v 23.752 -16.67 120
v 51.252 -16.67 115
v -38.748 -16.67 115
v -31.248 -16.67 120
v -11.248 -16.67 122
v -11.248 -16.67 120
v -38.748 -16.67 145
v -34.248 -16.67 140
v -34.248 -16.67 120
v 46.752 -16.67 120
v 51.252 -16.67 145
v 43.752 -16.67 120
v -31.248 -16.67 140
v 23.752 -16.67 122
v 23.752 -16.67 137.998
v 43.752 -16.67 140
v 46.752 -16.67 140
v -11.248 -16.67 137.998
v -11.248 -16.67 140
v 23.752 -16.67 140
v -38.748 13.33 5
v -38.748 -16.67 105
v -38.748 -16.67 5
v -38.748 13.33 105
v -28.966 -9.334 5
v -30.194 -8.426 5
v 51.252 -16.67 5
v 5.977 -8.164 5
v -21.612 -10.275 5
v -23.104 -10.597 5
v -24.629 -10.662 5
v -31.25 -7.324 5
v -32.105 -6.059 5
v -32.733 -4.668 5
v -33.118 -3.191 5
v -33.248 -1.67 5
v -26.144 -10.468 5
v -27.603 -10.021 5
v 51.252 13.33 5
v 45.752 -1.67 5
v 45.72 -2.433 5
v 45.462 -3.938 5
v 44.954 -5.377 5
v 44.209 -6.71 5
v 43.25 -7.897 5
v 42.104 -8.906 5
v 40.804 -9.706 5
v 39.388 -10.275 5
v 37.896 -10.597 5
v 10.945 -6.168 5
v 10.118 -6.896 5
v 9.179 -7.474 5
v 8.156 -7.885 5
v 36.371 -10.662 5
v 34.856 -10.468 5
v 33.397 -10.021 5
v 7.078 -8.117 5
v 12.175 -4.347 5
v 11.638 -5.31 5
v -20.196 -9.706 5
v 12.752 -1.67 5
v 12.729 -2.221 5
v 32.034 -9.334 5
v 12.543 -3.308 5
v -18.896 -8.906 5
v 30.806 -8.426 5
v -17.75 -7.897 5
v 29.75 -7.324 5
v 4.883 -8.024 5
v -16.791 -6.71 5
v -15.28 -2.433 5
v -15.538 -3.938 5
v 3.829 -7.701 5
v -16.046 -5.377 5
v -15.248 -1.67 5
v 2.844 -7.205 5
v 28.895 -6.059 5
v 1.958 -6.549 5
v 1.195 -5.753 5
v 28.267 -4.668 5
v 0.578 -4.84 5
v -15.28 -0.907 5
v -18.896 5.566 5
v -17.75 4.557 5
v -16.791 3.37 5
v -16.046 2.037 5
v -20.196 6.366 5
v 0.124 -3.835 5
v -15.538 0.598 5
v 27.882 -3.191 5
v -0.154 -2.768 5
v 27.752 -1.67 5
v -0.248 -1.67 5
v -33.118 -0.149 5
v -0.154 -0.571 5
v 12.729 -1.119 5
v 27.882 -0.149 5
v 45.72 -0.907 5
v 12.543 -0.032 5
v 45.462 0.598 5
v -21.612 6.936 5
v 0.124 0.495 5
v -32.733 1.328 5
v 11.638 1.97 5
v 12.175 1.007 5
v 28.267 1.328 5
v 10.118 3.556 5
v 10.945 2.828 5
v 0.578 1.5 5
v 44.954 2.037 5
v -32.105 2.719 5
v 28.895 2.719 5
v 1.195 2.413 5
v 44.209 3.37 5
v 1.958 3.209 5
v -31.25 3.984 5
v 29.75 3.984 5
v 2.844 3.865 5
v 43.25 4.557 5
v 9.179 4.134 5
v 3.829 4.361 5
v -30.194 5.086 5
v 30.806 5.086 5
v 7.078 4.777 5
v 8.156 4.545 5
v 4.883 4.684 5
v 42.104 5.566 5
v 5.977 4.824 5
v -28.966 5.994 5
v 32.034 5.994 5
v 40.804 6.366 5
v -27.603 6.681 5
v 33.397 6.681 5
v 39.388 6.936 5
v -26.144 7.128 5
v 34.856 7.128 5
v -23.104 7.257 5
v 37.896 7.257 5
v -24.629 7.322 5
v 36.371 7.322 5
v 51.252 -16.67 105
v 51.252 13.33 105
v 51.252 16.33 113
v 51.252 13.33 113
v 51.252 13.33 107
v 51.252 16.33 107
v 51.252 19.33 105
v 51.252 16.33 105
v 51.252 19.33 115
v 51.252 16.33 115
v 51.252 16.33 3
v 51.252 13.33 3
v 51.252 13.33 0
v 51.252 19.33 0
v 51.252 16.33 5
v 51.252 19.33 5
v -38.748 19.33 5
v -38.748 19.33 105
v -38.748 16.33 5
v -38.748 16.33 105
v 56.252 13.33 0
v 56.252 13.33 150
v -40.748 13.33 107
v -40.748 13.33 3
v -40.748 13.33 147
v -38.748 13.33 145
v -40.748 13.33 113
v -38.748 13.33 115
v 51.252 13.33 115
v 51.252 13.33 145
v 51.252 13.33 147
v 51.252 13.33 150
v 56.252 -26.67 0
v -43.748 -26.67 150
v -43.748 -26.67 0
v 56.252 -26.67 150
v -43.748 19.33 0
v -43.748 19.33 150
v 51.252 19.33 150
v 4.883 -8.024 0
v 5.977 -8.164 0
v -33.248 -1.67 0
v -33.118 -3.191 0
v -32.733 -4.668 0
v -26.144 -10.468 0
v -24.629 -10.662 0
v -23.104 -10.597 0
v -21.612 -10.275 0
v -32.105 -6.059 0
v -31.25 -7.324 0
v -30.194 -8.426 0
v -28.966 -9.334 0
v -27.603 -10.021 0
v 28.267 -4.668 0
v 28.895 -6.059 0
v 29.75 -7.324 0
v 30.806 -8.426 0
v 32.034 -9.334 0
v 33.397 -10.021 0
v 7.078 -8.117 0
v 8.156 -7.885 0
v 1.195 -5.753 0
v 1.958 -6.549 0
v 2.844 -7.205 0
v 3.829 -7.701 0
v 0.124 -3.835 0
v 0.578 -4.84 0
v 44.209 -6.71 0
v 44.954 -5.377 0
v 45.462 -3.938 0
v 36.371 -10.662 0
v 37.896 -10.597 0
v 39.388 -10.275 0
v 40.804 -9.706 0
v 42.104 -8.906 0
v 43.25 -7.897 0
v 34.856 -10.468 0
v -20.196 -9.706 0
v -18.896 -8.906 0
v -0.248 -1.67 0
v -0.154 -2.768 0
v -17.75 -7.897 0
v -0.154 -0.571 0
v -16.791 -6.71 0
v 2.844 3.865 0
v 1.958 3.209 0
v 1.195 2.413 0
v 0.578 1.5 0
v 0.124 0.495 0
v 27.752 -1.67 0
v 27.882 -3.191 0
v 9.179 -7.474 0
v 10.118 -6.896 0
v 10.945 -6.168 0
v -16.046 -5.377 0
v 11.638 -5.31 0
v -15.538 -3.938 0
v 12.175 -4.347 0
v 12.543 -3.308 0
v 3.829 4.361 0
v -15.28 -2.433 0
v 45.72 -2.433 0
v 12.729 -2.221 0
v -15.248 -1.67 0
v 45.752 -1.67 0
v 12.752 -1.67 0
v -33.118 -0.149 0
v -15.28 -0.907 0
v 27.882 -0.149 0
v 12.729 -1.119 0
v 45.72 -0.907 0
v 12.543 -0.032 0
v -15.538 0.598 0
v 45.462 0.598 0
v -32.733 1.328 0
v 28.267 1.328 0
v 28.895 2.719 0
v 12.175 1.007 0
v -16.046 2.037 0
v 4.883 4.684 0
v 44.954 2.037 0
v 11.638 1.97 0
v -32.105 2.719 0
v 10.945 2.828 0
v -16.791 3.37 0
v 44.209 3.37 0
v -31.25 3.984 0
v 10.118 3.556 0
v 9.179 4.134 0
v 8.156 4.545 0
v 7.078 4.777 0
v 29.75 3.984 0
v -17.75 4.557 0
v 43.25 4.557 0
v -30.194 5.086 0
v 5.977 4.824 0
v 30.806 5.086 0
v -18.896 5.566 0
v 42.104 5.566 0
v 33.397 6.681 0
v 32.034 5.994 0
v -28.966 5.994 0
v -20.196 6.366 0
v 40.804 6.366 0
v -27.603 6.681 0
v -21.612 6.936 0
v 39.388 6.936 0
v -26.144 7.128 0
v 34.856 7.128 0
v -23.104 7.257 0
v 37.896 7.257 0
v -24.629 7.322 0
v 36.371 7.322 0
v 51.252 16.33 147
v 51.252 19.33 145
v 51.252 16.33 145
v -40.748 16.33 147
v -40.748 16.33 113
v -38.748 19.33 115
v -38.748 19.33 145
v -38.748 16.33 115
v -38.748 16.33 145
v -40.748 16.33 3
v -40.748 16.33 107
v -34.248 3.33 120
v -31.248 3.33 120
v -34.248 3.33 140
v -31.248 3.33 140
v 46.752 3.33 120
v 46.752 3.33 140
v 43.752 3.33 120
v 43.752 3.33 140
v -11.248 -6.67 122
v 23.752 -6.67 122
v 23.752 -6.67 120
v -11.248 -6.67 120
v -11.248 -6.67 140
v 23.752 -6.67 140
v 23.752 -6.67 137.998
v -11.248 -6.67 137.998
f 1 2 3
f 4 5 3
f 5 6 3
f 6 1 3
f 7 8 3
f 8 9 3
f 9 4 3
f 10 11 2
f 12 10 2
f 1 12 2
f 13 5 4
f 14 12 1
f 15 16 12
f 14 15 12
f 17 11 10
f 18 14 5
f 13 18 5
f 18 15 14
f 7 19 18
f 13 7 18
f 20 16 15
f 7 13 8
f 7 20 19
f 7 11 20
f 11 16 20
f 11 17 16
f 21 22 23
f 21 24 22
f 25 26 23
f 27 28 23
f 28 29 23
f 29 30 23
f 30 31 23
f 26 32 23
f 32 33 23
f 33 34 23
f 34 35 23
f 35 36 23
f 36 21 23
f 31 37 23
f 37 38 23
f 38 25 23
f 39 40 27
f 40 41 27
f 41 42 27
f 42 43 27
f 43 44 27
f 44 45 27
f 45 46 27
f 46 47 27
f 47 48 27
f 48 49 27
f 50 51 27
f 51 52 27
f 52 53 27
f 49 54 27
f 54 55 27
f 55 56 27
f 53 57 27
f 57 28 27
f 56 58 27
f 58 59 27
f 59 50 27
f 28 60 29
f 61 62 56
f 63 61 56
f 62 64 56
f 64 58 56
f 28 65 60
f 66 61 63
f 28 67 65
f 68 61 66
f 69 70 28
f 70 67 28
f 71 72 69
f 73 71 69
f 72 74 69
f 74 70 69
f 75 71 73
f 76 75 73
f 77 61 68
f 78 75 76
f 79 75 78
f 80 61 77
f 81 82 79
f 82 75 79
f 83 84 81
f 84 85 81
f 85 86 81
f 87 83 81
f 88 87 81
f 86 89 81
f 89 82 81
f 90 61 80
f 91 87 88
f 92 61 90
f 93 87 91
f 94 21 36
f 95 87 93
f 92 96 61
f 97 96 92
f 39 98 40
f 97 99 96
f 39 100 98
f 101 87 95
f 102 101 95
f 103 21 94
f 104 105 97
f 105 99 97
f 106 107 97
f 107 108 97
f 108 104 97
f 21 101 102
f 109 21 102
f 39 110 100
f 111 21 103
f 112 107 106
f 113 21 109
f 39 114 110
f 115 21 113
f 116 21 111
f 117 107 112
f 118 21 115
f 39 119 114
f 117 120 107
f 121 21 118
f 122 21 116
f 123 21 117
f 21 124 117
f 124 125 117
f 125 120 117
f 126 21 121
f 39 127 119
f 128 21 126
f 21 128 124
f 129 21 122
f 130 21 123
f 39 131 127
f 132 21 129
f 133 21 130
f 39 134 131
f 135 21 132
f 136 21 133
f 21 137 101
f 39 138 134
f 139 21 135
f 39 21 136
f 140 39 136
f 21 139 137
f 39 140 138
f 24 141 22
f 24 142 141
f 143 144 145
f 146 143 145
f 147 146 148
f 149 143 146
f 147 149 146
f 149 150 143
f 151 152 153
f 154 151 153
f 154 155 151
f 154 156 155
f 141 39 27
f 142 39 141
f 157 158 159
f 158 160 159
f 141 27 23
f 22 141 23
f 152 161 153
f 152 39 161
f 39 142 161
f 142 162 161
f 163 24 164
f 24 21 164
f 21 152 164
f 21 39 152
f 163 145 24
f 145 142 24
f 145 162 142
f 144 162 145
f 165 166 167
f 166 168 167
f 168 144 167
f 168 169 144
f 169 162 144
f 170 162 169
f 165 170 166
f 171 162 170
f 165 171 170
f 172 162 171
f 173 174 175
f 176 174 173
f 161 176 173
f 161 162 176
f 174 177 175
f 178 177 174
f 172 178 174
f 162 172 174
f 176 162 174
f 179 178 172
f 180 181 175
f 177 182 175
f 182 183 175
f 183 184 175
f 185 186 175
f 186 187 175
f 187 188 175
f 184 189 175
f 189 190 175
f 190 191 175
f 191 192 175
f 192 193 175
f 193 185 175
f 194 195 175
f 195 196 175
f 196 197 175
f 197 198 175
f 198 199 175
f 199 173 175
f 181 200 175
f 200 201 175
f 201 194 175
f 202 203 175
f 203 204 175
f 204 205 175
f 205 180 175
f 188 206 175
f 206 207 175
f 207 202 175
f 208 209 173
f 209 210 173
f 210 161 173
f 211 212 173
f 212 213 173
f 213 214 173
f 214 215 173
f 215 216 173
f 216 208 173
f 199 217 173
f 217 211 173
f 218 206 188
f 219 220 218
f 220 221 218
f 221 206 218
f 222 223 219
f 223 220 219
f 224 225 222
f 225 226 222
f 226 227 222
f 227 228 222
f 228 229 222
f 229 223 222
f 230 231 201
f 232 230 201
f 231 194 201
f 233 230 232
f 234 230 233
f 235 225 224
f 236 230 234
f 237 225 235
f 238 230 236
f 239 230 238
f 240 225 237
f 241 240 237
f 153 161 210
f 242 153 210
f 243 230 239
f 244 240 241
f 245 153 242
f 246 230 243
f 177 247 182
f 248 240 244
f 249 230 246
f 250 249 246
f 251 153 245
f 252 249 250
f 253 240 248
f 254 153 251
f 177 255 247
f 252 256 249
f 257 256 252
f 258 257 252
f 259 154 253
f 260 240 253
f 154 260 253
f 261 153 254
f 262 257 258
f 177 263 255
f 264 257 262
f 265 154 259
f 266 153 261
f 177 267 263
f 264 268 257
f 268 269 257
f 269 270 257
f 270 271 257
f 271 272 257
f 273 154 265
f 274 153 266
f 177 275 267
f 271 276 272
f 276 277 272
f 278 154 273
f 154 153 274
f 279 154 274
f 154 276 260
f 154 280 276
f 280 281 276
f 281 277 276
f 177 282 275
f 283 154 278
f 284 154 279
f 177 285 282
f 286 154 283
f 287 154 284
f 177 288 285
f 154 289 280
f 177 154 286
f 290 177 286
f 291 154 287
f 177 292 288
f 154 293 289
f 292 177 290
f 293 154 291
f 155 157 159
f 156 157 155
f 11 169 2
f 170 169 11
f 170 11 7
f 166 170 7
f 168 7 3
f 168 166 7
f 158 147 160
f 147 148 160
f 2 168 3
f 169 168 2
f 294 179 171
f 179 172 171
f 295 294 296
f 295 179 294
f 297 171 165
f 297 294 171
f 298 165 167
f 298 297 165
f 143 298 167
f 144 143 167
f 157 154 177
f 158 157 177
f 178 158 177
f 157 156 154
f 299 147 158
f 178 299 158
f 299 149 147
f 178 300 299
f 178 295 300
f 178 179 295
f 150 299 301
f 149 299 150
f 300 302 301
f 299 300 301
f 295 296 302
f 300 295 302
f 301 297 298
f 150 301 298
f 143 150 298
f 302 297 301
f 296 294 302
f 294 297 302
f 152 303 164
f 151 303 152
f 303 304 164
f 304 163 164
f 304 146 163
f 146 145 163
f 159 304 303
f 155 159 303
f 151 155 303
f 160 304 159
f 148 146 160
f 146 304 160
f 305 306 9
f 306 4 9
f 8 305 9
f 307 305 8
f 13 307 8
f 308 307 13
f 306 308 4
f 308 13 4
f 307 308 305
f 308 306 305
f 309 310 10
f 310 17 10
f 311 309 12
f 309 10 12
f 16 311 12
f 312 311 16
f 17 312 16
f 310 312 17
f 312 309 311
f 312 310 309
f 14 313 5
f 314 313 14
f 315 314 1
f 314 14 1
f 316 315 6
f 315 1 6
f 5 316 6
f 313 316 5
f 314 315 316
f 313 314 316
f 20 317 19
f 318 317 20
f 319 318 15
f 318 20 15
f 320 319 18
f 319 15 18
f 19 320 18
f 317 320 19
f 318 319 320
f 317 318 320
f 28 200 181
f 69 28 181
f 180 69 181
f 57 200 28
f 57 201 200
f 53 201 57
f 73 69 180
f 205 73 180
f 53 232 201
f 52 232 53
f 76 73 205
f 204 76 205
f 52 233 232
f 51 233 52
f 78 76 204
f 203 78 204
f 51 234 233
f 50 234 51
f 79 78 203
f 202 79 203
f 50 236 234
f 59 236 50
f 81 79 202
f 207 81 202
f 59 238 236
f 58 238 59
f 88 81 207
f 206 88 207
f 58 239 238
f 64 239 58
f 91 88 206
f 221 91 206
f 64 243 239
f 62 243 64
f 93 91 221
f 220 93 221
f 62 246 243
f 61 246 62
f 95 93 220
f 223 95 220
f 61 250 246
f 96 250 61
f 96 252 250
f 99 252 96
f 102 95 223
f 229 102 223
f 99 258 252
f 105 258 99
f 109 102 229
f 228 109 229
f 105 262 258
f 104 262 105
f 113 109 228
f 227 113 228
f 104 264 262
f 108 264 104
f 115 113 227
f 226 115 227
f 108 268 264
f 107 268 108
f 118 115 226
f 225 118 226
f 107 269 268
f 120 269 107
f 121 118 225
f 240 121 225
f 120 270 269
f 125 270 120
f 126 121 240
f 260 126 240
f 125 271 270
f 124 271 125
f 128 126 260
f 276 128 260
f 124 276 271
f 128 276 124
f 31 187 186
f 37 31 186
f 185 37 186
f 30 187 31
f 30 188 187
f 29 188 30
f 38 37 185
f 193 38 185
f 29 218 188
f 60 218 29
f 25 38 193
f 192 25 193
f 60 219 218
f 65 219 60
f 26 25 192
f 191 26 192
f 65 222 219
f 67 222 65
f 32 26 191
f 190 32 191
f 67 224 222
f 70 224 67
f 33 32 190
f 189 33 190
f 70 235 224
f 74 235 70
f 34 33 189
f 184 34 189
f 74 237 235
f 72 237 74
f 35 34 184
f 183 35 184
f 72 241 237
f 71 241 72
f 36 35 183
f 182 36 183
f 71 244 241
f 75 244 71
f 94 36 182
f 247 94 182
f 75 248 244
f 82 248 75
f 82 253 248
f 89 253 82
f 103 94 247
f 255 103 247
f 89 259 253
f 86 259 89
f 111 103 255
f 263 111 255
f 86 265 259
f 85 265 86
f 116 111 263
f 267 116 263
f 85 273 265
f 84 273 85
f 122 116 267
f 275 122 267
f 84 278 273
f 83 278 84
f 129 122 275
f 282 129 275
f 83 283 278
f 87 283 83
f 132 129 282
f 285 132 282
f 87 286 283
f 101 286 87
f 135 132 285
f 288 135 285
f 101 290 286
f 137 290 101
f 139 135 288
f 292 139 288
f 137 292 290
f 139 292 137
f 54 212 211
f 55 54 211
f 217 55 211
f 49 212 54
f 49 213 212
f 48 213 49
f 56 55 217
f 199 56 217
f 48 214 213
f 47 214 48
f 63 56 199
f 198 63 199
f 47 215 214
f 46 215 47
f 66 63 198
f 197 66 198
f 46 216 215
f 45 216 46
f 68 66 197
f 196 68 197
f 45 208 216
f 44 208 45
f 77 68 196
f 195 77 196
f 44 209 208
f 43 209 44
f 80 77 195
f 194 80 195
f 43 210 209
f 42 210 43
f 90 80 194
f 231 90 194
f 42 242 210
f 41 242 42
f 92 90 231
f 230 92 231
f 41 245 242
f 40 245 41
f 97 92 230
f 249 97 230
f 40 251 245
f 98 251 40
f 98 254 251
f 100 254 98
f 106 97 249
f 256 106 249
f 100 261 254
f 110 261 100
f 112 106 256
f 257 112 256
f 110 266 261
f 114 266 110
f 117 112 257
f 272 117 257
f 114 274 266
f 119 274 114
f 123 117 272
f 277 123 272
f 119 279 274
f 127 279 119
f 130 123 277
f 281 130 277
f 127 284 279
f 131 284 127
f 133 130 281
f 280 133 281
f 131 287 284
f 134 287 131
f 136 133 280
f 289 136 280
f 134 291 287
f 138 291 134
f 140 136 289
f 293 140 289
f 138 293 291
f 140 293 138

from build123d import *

# Parameters (mm, degrees)
SKETCH1_W            = 100
SKETCH1_H            = 40
BOSS_EXTRUDE1_DEPTH  = 150
SKETCH2_W            = 90
SKETCH2_H            = 140
CUT_EXTRUDE1_DEPTH   = 30
SKETCH5_W            = 90
SKETCH5_H            = 10
BOSS_EXTRUDE3_DEPTH  = 30
BOSS_EXTRUDE6_DEPTH  = 6
BOSS_EXTRUDE7_DEPTH  = 3
BOSS_EXTRUDE8_DEPTH  = 6
CUT_EXTRUDE7_DEPTH   = 3
SKETCH14_W           = 3
SKETCH14_H           = 20
BOSS_EXTRUDE9_DEPTH  = 20
SKETCH15_W           = 3
SKETCH15_H           = 20
BOSS_EXTRUDE10_DEPTH = 20
SKETCH16_W           = 35
SKETCH16_H           = 2
BOSS_EXTRUDE11_DEPTH = 10
SKETCH17_W           = 35
SKETCH17_H           = 2.001720383
BOSS_EXTRUDE12_DEPTH = 10
SKETCH18_R           = 6.5
SKETCH18_R_2         = 9
CUT_EXTRUDE9_DEPTH   = 10


with BuildPart() as part:
    # Sketch1 → Boss-Extrude1 (new body)
    with BuildSketch(Plane.XY):
        with Locations((6.252485089, -6.669980119)):
            Rectangle(SKETCH1_W, SKETCH1_H)
    extrude(amount=BOSS_EXTRUDE1_DEPTH)

    # Sketch2 → Cut-Extrude1 (cut)
    with BuildSketch(Plane(origin=(0, 13.330019881, 0), x_dir=(1, 0, 0), z_dir=(0, 1, 0))):
        with Locations((6.252485089, -75)):
            Rectangle(SKETCH2_W, SKETCH2_H)
    extrude(amount=-CUT_EXTRUDE1_DEPTH, mode=Mode.SUBTRACT)

    # Sketch5 → Boss-Extrude3 (add)
    with BuildSketch(Plane(origin=(0, 13.330019881, 0), x_dir=(1, 0, 0), z_dir=(0, 1, 0))):
        with Locations((6.252485089, -110)):
            Rectangle(SKETCH5_W, SKETCH5_H)
    extrude(amount=-BOSS_EXTRUDE3_DEPTH)

    # Sketch8 → Boss-Extrude6 (add)
    with BuildSketch(Plane(origin=(0, 13.330019881, 0), x_dir=(1, 0, 0), z_dir=(0, 1, 0))):
        Polygon((-43.747514911, -113), (-43.747514911, -150), (-40.747514911, -150), (51.252485089, -150), (51.252485089, -147), (-40.747514911, -147), (-40.747514911, -113), (51.252485089, -113), (51.252485089, -110), (-43.747514911, -110), align=None)
    extrude(amount=BOSS_EXTRUDE6_DEPTH)

    # Sketch10 → Boss-Extrude7 (add)
    with BuildSketch(Plane(origin=(0, 19.330019881, 0), x_dir=(1, 0, 0), z_dir=(0, 1, 0))):
        Polygon((51.252485089, -113), (51.252485089, -115), (-38.747514911, -115), (-38.747514911, -145), (51.252485089, -145), (51.252485089, -147), (-40.747514911, -147), (-40.747514911, -113), align=None)
    extrude(amount=-BOSS_EXTRUDE7_DEPTH)

    # Sketch11 → Boss-Extrude8 (add)
    with BuildSketch(Plane(origin=(0, 19.330019881, 0), x_dir=(1, 0, 0), z_dir=(0, 1, 0))):
        Polygon((51.252485089, -110), (51.252485089, -105), (-38.747514911, -105), (-38.747514911, -5), (51.252485089, -5), (51.252485089, 0), (-43.747514911, 0), (-43.747514911, -110), align=None)
    extrude(amount=-BOSS_EXTRUDE8_DEPTH)

    # Sketch13 → Cut-Extrude7 (cut)
    with BuildSketch(Plane(origin=(0, 13.330019881, 0), x_dir=(1, 0, 0), z_dir=(0, 1, 0))):
        Polygon((51.252485089, -3), (-40.747514911, -3), (-40.747514911, -107), (51.252485089, -107), (51.252485089, -105), (-38.747514911, -105), (-38.747514911, -5), (51.252485089, -5), align=None)
    extrude(amount=CUT_EXTRUDE7_DEPTH, mode=Mode.SUBTRACT)

    # Sketch14 → Boss-Extrude9 (add)
    with BuildSketch(Plane(origin=(0, -16.669980119, 0), x_dir=(1, 0, 0), z_dir=(0, 1, 0))):
        with Locations((-32.747514911, -130)):
            Rectangle(SKETCH14_W, SKETCH14_H)
    extrude(amount=BOSS_EXTRUDE9_DEPTH)

    # Sketch15 → Boss-Extrude10 (add)
    with BuildSketch(Plane(origin=(0, -16.669980119, 0), x_dir=(1, 0, 0), z_dir=(0, 1, 0))):
        with Locations((45.252485089, -130)):
            Rectangle(SKETCH15_W, SKETCH15_H)
    extrude(amount=BOSS_EXTRUDE10_DEPTH)

    # Sketch16 → Boss-Extrude11 (add)
    with BuildSketch(Plane(origin=(0, -16.669980119, 0), x_dir=(1, 0, 0), z_dir=(0, 1, 0))):
        with Locations((6.252485089, -121)):
            Rectangle(SKETCH16_W, SKETCH16_H)
    extrude(amount=BOSS_EXTRUDE11_DEPTH)

    # Sketch17 → Boss-Extrude12 (add)
    with BuildSketch(Plane(origin=(0, -16.669980119, 0), x_dir=(1, 0, 0), z_dir=(0, 1, 0))):
        with Locations((6.252485089, -138.999139808)):
            Rectangle(SKETCH17_W, SKETCH17_H)
    extrude(amount=BOSS_EXTRUDE12_DEPTH)

    # Sketch18 → Cut-Extrude9 (cut)
    with BuildSketch(Plane.XY):
        with Locations((6.252485089, -1.669980119)):
            Circle(SKETCH18_R)
        with Locations((36.752485089, -1.669980119)):
            Circle(SKETCH18_R_2)
        with Locations((-24.247514911, -1.669980119)):
            Circle(SKETCH18_R_2)
    extrude(amount=CUT_EXTRUDE9_DEPTH, mode=Mode.SUBTRACT)


solid = part.part
